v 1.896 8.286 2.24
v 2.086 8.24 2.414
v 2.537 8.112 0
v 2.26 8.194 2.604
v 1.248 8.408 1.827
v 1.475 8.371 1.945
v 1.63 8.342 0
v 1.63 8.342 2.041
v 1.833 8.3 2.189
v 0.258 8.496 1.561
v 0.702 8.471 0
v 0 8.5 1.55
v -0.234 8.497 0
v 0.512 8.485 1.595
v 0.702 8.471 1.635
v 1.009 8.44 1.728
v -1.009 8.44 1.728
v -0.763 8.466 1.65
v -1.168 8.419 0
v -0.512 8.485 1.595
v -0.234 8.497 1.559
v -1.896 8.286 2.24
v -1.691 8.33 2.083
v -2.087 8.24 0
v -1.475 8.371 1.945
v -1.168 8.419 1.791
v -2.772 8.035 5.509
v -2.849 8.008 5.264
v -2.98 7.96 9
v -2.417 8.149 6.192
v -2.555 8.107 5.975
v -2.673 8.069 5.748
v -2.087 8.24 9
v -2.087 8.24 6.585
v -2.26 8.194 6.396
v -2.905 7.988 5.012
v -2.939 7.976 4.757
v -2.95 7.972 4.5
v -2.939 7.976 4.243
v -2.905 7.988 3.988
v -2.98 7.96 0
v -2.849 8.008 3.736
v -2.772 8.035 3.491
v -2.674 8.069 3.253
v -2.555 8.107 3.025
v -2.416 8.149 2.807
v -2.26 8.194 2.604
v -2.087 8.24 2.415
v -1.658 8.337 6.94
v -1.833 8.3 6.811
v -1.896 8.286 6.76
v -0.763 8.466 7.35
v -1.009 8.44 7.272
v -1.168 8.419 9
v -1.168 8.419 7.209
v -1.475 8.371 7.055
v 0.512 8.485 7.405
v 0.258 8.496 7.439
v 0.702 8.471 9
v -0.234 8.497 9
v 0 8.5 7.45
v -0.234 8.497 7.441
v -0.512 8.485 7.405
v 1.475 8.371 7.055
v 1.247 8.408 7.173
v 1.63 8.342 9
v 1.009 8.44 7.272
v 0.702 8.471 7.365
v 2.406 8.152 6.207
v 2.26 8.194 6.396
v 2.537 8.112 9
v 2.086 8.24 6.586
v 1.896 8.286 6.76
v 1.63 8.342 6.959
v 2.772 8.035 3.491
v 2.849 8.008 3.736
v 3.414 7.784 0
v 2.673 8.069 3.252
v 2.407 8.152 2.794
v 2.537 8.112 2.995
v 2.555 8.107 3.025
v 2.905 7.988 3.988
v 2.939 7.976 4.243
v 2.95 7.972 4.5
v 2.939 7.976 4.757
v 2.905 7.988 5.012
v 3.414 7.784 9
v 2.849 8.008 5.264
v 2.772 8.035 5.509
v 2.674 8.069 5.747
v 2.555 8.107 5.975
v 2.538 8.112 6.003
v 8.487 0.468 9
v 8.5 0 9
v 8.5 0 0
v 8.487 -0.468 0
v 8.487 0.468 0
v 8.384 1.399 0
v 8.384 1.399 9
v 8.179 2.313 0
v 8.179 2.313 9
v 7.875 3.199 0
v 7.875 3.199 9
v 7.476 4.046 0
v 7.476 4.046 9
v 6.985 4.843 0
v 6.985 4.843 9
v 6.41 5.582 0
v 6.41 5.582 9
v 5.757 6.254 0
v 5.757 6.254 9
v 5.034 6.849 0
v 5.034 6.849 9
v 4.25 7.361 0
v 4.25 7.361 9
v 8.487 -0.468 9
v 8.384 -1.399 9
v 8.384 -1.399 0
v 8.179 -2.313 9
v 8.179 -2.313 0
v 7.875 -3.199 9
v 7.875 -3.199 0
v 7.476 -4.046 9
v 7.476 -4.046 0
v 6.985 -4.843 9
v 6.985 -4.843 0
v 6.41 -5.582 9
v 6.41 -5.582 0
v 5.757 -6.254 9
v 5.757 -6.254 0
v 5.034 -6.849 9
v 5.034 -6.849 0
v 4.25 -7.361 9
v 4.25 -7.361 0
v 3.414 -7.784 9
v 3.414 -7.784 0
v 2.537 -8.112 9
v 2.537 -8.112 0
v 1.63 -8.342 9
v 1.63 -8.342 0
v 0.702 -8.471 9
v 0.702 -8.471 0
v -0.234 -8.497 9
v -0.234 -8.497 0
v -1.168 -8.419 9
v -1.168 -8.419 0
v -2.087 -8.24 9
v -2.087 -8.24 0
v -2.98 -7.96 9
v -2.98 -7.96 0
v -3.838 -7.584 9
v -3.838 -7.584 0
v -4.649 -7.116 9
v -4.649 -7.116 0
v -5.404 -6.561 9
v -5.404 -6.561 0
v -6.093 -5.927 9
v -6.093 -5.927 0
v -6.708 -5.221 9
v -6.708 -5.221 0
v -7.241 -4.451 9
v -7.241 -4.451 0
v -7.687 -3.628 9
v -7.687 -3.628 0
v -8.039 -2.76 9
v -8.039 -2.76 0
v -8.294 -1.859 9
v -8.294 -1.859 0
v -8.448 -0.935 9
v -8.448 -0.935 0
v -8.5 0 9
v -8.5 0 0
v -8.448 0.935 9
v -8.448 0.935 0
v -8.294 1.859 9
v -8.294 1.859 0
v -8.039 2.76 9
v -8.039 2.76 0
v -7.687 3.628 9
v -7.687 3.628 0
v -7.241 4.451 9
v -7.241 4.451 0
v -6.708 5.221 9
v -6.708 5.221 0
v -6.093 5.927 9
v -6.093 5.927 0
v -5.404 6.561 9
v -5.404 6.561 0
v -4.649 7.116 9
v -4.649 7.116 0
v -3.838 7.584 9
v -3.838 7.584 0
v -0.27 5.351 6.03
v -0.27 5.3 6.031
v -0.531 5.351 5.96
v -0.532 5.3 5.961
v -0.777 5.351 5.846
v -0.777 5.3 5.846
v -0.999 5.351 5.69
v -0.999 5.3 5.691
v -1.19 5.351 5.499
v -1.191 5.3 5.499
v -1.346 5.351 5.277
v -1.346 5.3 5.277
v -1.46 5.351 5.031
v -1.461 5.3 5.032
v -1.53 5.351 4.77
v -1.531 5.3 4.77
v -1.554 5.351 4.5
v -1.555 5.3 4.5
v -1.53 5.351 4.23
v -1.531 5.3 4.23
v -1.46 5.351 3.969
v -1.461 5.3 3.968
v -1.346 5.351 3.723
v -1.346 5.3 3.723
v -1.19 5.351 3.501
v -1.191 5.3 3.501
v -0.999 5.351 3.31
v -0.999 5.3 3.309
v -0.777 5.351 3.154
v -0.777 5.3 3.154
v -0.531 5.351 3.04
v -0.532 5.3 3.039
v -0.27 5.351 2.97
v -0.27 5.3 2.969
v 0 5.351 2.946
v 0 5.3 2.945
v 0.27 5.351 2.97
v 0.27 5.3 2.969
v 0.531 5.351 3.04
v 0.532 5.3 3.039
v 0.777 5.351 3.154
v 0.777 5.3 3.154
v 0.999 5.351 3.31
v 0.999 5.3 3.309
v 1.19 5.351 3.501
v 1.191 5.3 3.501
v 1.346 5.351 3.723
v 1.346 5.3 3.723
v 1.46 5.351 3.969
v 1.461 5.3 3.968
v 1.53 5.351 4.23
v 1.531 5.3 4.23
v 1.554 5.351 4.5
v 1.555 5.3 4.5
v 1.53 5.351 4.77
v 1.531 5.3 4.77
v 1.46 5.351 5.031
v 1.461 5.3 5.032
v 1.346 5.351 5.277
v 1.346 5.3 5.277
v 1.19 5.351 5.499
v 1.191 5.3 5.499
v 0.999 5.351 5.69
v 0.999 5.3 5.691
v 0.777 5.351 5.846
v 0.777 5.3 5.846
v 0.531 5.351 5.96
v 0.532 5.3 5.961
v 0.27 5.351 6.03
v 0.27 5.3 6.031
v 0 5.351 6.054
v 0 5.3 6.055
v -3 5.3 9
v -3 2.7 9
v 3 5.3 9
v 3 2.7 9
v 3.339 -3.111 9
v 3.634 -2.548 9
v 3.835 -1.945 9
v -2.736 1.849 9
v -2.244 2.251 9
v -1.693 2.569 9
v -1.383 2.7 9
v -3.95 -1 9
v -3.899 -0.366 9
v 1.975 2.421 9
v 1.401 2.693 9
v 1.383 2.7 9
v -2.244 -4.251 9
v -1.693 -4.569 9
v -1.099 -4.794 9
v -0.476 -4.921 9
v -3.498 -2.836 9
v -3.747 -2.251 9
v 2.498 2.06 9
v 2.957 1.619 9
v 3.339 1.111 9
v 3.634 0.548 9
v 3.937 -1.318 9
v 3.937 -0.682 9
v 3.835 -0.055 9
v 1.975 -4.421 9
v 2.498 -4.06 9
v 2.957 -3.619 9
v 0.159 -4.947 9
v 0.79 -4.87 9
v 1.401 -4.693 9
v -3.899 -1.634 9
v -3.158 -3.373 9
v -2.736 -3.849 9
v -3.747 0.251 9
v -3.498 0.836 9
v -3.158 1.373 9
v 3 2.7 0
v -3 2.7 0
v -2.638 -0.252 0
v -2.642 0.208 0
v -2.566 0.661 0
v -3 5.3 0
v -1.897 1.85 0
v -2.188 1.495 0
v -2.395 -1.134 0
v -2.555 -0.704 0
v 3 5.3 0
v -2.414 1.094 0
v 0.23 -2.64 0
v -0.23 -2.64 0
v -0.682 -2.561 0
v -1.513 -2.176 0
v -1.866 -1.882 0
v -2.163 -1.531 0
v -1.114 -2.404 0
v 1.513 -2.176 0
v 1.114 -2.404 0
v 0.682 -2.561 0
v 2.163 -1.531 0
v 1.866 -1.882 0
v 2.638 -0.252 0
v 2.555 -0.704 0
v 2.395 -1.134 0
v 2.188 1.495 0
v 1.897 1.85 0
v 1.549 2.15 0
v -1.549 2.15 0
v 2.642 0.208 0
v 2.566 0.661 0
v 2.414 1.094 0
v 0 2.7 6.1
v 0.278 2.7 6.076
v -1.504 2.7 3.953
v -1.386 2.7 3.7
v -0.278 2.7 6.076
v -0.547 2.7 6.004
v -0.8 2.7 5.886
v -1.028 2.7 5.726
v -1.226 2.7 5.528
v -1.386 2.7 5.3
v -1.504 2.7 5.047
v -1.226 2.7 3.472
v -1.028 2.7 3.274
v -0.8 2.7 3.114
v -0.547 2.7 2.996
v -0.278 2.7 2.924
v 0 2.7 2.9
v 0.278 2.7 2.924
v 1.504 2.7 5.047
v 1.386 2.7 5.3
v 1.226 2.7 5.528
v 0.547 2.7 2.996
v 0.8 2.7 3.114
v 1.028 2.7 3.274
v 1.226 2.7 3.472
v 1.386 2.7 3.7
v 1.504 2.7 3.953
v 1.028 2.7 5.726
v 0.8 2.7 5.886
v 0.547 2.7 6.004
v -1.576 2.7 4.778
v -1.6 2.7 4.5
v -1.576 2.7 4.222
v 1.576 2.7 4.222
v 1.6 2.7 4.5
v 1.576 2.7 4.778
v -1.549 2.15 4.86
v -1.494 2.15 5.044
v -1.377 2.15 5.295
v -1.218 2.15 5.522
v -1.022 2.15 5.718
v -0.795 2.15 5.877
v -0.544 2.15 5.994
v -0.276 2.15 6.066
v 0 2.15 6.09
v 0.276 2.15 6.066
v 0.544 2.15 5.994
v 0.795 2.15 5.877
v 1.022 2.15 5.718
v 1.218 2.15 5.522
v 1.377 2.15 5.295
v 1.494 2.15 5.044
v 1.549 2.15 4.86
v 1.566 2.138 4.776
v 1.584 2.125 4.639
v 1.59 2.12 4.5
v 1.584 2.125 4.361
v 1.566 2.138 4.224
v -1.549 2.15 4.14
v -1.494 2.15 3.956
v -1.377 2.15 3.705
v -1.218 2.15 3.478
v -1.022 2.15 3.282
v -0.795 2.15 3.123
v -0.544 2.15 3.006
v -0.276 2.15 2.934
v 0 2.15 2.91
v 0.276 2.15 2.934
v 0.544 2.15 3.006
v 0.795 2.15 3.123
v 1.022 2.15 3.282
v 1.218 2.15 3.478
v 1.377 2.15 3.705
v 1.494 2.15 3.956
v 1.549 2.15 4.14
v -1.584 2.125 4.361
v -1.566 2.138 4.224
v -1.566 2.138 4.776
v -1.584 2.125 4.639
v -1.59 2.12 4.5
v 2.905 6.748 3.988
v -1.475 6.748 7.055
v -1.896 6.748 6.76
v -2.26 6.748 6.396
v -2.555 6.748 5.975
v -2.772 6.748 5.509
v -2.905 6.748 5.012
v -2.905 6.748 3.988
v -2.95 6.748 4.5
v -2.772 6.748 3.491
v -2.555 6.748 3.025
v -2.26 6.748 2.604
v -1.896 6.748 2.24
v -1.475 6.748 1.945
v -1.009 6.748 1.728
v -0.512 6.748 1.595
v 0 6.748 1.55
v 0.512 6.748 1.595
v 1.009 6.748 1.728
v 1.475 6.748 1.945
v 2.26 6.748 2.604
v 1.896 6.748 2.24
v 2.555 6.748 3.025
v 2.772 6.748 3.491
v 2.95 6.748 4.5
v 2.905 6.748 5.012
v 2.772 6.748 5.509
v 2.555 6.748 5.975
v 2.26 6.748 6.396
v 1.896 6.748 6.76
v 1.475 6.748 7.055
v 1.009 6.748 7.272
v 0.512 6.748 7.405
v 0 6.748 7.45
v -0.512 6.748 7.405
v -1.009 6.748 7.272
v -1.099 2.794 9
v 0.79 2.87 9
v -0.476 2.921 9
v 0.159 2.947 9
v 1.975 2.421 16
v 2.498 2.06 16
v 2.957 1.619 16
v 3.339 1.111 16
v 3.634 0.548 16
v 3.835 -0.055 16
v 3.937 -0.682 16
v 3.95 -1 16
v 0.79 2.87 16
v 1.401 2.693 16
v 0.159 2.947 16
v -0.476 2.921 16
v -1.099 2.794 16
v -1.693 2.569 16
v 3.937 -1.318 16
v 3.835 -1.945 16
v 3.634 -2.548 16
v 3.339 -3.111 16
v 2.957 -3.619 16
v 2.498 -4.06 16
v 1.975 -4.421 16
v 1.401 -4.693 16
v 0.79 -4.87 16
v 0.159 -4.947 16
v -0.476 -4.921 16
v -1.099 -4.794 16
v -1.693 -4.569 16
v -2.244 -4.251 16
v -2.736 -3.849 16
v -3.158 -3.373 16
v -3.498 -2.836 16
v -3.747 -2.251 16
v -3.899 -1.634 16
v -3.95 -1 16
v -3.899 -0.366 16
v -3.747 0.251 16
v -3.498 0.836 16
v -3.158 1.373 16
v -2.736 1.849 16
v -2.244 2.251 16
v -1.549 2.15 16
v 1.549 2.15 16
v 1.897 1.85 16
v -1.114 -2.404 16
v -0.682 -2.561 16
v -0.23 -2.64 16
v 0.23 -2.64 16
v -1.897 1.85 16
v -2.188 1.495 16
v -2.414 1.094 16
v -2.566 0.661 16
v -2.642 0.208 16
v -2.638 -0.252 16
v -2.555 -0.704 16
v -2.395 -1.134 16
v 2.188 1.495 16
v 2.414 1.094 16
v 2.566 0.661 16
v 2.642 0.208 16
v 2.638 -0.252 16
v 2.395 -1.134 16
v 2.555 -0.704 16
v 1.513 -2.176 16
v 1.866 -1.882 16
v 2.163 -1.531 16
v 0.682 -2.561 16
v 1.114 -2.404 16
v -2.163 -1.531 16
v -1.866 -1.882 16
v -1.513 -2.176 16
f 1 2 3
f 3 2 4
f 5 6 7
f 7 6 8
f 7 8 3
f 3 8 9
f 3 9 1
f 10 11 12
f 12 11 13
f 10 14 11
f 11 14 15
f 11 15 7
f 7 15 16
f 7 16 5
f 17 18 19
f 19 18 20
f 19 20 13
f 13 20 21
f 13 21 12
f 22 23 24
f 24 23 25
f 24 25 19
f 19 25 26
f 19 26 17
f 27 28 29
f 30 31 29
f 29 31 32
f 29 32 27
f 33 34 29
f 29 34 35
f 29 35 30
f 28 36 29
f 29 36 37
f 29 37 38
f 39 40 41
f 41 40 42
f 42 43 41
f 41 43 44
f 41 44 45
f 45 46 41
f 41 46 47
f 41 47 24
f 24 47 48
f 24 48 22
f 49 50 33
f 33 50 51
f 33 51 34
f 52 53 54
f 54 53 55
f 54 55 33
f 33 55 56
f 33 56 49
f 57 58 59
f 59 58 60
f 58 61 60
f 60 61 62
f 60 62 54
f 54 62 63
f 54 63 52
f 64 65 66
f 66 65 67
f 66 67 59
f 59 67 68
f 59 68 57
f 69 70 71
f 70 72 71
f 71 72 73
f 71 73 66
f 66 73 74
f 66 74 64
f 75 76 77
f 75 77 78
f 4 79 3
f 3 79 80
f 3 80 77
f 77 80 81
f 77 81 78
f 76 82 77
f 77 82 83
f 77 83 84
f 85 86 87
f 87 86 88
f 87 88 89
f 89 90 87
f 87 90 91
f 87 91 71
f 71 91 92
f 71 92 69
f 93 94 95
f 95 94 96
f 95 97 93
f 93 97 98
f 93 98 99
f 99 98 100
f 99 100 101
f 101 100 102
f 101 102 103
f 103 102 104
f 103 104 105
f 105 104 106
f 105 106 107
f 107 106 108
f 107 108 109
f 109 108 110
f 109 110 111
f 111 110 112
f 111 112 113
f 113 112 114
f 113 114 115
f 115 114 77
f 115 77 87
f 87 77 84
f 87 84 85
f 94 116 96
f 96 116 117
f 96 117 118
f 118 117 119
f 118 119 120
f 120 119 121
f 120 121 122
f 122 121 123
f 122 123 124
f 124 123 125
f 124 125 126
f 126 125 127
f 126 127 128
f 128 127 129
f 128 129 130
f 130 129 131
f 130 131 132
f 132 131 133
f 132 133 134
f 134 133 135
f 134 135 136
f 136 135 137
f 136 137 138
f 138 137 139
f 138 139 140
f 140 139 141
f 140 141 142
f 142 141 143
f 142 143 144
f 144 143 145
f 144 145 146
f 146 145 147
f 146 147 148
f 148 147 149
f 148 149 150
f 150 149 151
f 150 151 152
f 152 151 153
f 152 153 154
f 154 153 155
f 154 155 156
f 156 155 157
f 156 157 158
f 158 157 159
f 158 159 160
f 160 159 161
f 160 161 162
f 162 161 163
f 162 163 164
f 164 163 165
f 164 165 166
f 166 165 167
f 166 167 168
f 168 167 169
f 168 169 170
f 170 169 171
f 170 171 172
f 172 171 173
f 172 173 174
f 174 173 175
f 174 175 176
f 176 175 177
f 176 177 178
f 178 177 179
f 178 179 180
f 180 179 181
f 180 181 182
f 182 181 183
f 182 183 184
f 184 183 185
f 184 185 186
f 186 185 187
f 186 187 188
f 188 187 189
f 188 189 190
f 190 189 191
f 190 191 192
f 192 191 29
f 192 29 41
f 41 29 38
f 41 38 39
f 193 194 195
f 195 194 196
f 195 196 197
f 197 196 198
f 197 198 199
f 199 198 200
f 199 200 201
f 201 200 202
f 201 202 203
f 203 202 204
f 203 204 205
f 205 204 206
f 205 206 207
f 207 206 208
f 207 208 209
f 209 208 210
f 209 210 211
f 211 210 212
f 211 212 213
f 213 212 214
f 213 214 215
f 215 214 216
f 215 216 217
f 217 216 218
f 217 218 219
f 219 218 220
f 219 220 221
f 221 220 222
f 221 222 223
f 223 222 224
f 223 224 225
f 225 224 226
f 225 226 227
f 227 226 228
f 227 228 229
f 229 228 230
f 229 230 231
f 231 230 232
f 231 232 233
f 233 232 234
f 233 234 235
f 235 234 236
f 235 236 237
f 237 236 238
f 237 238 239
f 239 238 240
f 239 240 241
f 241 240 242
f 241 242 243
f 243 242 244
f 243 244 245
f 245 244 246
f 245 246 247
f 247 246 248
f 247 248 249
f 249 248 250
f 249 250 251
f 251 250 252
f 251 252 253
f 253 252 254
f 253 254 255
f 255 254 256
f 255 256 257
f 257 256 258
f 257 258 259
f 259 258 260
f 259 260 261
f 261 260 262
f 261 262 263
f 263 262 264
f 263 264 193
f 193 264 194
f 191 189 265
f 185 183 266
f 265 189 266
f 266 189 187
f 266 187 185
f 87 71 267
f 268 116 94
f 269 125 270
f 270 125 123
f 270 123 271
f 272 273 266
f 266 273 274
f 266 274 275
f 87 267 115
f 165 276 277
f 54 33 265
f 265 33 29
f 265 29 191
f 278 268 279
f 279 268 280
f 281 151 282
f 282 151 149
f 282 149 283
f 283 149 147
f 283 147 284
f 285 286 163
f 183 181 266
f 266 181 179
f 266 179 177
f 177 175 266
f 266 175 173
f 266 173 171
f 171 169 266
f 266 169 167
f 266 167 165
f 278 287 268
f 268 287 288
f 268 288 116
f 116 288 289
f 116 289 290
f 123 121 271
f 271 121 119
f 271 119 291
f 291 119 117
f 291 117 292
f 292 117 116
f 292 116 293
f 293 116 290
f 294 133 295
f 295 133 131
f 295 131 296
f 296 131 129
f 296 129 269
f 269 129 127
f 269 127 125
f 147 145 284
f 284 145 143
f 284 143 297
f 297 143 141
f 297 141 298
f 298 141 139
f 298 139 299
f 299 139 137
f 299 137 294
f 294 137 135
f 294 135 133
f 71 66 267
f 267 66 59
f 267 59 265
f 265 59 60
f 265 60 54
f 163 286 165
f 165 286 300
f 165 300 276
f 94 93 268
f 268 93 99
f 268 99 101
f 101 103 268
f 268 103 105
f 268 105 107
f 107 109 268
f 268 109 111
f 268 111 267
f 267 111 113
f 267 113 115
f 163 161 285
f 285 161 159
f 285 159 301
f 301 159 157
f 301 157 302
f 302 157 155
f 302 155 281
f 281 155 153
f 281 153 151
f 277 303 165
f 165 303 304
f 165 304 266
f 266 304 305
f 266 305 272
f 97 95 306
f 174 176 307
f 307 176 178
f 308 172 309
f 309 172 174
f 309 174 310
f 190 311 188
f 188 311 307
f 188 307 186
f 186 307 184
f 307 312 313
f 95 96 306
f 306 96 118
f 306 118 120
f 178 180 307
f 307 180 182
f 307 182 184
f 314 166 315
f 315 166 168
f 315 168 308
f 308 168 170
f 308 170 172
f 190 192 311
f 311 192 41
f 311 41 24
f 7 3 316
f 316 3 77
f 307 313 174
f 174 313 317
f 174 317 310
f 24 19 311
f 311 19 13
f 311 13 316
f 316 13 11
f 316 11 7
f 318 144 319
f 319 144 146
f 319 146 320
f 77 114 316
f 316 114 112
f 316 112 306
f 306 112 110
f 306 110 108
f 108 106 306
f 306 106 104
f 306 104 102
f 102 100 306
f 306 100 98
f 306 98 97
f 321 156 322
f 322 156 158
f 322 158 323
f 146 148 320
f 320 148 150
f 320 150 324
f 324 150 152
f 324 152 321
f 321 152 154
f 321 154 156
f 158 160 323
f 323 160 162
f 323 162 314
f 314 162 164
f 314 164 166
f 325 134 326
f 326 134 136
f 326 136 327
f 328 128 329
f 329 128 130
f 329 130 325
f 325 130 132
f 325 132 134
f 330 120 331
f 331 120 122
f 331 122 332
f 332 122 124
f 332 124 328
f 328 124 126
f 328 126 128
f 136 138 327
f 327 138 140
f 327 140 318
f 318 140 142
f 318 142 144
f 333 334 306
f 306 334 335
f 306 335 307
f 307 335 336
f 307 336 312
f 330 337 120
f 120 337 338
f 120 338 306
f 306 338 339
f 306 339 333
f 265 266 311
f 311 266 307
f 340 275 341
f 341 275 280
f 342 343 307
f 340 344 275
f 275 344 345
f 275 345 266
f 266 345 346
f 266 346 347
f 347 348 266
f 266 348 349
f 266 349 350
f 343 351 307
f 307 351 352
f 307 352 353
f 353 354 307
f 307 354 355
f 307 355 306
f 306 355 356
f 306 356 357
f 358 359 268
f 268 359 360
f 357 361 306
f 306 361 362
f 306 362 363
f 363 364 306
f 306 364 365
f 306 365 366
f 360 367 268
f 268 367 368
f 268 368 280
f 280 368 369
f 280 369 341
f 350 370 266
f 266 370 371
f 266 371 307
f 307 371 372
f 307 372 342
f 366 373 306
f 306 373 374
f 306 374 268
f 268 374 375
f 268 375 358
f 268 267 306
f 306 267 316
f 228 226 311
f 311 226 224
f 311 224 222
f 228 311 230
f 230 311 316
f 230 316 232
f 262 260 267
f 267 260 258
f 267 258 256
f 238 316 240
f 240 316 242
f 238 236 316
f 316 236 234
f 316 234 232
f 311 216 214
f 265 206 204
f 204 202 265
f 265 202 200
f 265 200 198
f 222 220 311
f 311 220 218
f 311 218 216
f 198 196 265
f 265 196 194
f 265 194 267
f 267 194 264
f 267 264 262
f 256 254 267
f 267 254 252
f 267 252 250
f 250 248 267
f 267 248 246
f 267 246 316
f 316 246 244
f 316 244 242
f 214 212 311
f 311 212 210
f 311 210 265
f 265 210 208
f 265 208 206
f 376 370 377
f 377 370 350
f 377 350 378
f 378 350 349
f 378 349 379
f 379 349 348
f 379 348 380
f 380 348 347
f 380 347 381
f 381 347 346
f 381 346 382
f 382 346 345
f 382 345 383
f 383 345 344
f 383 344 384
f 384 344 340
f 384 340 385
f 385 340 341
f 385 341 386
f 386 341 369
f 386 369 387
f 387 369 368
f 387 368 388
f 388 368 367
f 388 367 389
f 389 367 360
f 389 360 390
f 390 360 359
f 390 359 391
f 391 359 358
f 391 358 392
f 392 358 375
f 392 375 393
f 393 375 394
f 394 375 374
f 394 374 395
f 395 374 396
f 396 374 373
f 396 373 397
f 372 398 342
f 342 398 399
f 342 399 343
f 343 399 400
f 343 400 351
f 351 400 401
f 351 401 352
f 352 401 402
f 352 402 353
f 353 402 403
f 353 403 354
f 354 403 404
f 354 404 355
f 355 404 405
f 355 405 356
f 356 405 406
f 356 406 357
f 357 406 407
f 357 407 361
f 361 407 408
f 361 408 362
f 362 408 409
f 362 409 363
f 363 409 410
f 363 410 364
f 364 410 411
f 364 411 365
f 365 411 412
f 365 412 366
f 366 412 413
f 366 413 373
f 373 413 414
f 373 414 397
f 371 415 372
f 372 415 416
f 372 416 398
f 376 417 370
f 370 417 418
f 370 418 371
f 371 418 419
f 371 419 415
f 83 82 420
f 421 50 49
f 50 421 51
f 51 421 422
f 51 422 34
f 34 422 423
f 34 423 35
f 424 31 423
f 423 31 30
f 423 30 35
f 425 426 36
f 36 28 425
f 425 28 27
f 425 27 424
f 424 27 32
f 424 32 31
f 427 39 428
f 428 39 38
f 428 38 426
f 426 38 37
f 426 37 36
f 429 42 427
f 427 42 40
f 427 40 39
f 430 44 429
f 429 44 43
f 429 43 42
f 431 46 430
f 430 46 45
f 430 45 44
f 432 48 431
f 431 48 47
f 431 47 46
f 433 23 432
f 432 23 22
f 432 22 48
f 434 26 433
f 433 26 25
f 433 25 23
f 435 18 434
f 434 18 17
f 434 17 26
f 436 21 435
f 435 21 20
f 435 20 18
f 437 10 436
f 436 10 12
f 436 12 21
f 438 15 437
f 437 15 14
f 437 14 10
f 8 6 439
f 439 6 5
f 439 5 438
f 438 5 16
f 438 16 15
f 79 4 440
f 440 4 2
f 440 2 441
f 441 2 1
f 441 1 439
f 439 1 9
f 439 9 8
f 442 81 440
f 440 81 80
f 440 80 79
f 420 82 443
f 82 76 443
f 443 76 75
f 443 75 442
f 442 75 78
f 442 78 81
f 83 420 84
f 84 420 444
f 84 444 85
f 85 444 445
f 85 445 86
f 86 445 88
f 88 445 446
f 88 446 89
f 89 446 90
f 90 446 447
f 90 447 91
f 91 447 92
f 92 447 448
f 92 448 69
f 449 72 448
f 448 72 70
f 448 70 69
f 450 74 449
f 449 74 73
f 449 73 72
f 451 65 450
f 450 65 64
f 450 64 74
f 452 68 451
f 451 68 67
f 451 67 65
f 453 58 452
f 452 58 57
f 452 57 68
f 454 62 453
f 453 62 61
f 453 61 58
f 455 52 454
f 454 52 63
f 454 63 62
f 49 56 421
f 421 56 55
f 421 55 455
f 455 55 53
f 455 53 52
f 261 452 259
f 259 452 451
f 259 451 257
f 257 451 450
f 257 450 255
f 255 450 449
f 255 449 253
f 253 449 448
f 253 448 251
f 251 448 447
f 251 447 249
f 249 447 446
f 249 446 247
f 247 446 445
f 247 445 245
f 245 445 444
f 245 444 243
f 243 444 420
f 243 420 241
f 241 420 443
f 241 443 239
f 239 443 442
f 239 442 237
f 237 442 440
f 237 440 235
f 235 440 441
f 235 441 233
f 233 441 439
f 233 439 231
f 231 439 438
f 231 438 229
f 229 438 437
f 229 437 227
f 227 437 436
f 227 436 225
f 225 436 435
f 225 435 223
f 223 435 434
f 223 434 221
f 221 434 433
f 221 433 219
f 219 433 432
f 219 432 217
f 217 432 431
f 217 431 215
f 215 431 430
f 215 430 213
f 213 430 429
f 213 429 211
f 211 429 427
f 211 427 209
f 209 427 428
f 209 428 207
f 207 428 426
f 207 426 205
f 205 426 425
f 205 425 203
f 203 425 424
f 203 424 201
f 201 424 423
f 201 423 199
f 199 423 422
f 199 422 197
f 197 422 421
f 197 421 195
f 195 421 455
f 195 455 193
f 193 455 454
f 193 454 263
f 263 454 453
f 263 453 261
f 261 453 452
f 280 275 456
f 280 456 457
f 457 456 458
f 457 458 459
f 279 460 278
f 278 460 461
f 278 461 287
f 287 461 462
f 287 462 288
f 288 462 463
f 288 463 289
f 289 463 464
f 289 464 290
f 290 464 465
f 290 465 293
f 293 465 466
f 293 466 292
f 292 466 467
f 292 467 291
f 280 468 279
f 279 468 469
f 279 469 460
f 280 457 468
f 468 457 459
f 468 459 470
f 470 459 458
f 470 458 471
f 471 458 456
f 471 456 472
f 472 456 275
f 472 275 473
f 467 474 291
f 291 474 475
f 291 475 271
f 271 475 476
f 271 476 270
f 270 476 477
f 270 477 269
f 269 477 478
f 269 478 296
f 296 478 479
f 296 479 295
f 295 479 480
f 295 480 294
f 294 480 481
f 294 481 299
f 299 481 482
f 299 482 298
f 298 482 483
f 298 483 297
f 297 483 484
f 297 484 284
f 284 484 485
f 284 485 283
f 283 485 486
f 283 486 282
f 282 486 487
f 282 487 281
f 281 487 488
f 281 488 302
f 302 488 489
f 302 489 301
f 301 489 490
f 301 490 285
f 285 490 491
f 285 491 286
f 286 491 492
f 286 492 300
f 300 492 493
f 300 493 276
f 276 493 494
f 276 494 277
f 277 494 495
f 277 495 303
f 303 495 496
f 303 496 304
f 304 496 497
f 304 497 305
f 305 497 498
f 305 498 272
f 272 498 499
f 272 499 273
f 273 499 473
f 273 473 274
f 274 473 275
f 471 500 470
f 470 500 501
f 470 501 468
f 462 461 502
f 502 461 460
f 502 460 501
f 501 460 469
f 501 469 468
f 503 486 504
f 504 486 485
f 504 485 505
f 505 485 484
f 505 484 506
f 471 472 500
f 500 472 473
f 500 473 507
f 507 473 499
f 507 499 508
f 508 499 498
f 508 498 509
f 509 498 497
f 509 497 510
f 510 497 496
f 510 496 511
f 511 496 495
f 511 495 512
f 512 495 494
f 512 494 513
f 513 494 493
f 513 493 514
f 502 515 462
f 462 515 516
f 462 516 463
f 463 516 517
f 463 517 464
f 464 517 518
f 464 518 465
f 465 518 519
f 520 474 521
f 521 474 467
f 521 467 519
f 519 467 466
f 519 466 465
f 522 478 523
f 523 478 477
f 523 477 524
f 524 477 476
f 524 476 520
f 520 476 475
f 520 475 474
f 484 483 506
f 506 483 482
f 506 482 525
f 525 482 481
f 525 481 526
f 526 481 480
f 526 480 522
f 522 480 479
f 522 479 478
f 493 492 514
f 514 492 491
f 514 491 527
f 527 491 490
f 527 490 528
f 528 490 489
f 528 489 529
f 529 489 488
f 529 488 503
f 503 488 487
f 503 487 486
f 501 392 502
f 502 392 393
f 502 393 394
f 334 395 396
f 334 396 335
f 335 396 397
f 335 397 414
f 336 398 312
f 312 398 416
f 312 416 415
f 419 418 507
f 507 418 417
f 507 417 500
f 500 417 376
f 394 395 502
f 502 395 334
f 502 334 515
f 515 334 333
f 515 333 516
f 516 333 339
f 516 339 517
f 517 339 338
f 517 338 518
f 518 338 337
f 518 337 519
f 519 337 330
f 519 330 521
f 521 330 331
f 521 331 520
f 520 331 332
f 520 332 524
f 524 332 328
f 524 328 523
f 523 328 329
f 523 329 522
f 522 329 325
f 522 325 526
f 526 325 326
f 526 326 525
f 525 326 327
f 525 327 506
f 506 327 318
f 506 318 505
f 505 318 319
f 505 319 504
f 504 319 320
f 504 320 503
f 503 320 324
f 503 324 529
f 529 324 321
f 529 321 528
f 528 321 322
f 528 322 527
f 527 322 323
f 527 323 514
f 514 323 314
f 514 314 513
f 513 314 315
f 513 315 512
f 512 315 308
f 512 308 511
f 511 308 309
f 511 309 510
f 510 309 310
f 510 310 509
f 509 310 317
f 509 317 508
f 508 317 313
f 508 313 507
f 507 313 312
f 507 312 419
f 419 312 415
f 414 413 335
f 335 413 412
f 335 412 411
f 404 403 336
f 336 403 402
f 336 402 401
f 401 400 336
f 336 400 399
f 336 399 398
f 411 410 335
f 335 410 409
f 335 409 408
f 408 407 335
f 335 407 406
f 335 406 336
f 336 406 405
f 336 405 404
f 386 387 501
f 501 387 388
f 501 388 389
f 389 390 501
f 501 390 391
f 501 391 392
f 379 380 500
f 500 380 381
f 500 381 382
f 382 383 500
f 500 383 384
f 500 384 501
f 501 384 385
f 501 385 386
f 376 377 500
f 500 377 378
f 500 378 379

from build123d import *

# Parameters (mm, degrees)
ESQUISSE1_R             = 8.5
BOSS_EXTRU_1_DEPTH      = 9
ESQUISSE2_W             = 6
ESQUISSE2_H             = 2.6
ENL_V_MAT_EXTRU_1_DEPTH = 16.016657418
ESQUISSE7_R             = 2.95
ENL_V_MAT_EXTRU_8_DEPTH = 21.868397324
ESQUISSE9_R             = 3.95
BOSS_EXTRU_2_DEPTH      = 7
ENL_V_MAT_EXTRU_9_DEPTH = 21.012496182


with BuildPart() as part:
    # Esquisse1 → Boss.-Extru.1 (new body)
    with BuildSketch(Plane.XY):
        Circle(ESQUISSE1_R)
    extrude(amount=BOSS_EXTRU_1_DEPTH)

    # Esquisse2 → Enlèv. mat.-Extru.1 (cut, through all)
    with BuildSketch(Plane(origin=(0, 0, 0), x_dir=(-1, 0, 0), z_dir=(0, 0, -1))):
        with Locations((0, 4)):
            Rectangle(ESQUISSE2_W, ESQUISSE2_H)
    extrude(amount=-ENL_V_MAT_EXTRU_1_DEPTH, mode=Mode.SUBTRACT)

    # Enlèv. mat.-Extru.2: read off the stored shape, not the designer's step
    # Enlèv. mat.-Extru.2 outline → Enlèv. mat.-Extru.2 (revolve, cut)
    with BuildSketch(Plane.XY.offset(4.5)):
        Polygon((0, 5.3), (1.554616831, 5.3), (1.498760014, 8.500034923), (0, 8.500034923), align=None)
        Polygon((1.6, 2.7), (0, 2.7), (0, 0.7), (1.56508987, 0.7), align=None)
    revolve(axis=Axis((0, 0, 4.5), (0, 1, 0)), mode=Mode.SUBTRACT)

    # Esquisse7 → Enlèv. mat.-Extru.8 (cut, through all)
    with BuildSketch(Plane(origin=(0, 8.3, 0), x_dir=(1, 0, 0), z_dir=(0, 1, 0))):
        with Locations((0, -4.5)):
            Circle(ESQUISSE7_R)
    extrude(amount=ENL_V_MAT_EXTRU_8_DEPTH, mode=Mode.SUBTRACT)

    # Chanfrein1: read off the stored shape, not the designer's step
    # Chanfrein1 outline → Chanfrein1 (revolve, cut)
    with BuildSketch(Plane.XY.offset(4.5)):
        Polygon((2.95, 6.747748364), (2.95, 8.3), (1.502251636, 8.3), (1.553718474, 5.351466838), align=None)
    revolve(axis=Axis((0, 0, 4.5), (0, 1, 0)), mode=Mode.SUBTRACT)

    # Esquisse9 → Boss.-Extru.2 (add)
    with BuildSketch(Plane.XY.offset(9)):
        with Locations(Location((0, -1, 0), (0, 0, 110.493999506))):
            Circle(ESQUISSE9_R)
    extrude(amount=BOSS_EXTRU_2_DEPTH)

    # Esquisse10 → Enlèv. mat.-Extru.9 (cut, through all)
    with BuildSketch(Plane(origin=(0, 0, 0), x_dir=(-1, 0, 0), z_dir=(0, 0, -1))):
        with BuildLine():
            Line((-1.549193338, 2.15), (1.549193338, 2.15))
            ThreePointArc((1.549193338, 2.15), (0, -2.65), (-1.549193338, 2.15))
        make_face()
    extrude(amount=-ENL_V_MAT_EXTRU_9_DEPTH, mode=Mode.SUBTRACT)


solid = part.part
